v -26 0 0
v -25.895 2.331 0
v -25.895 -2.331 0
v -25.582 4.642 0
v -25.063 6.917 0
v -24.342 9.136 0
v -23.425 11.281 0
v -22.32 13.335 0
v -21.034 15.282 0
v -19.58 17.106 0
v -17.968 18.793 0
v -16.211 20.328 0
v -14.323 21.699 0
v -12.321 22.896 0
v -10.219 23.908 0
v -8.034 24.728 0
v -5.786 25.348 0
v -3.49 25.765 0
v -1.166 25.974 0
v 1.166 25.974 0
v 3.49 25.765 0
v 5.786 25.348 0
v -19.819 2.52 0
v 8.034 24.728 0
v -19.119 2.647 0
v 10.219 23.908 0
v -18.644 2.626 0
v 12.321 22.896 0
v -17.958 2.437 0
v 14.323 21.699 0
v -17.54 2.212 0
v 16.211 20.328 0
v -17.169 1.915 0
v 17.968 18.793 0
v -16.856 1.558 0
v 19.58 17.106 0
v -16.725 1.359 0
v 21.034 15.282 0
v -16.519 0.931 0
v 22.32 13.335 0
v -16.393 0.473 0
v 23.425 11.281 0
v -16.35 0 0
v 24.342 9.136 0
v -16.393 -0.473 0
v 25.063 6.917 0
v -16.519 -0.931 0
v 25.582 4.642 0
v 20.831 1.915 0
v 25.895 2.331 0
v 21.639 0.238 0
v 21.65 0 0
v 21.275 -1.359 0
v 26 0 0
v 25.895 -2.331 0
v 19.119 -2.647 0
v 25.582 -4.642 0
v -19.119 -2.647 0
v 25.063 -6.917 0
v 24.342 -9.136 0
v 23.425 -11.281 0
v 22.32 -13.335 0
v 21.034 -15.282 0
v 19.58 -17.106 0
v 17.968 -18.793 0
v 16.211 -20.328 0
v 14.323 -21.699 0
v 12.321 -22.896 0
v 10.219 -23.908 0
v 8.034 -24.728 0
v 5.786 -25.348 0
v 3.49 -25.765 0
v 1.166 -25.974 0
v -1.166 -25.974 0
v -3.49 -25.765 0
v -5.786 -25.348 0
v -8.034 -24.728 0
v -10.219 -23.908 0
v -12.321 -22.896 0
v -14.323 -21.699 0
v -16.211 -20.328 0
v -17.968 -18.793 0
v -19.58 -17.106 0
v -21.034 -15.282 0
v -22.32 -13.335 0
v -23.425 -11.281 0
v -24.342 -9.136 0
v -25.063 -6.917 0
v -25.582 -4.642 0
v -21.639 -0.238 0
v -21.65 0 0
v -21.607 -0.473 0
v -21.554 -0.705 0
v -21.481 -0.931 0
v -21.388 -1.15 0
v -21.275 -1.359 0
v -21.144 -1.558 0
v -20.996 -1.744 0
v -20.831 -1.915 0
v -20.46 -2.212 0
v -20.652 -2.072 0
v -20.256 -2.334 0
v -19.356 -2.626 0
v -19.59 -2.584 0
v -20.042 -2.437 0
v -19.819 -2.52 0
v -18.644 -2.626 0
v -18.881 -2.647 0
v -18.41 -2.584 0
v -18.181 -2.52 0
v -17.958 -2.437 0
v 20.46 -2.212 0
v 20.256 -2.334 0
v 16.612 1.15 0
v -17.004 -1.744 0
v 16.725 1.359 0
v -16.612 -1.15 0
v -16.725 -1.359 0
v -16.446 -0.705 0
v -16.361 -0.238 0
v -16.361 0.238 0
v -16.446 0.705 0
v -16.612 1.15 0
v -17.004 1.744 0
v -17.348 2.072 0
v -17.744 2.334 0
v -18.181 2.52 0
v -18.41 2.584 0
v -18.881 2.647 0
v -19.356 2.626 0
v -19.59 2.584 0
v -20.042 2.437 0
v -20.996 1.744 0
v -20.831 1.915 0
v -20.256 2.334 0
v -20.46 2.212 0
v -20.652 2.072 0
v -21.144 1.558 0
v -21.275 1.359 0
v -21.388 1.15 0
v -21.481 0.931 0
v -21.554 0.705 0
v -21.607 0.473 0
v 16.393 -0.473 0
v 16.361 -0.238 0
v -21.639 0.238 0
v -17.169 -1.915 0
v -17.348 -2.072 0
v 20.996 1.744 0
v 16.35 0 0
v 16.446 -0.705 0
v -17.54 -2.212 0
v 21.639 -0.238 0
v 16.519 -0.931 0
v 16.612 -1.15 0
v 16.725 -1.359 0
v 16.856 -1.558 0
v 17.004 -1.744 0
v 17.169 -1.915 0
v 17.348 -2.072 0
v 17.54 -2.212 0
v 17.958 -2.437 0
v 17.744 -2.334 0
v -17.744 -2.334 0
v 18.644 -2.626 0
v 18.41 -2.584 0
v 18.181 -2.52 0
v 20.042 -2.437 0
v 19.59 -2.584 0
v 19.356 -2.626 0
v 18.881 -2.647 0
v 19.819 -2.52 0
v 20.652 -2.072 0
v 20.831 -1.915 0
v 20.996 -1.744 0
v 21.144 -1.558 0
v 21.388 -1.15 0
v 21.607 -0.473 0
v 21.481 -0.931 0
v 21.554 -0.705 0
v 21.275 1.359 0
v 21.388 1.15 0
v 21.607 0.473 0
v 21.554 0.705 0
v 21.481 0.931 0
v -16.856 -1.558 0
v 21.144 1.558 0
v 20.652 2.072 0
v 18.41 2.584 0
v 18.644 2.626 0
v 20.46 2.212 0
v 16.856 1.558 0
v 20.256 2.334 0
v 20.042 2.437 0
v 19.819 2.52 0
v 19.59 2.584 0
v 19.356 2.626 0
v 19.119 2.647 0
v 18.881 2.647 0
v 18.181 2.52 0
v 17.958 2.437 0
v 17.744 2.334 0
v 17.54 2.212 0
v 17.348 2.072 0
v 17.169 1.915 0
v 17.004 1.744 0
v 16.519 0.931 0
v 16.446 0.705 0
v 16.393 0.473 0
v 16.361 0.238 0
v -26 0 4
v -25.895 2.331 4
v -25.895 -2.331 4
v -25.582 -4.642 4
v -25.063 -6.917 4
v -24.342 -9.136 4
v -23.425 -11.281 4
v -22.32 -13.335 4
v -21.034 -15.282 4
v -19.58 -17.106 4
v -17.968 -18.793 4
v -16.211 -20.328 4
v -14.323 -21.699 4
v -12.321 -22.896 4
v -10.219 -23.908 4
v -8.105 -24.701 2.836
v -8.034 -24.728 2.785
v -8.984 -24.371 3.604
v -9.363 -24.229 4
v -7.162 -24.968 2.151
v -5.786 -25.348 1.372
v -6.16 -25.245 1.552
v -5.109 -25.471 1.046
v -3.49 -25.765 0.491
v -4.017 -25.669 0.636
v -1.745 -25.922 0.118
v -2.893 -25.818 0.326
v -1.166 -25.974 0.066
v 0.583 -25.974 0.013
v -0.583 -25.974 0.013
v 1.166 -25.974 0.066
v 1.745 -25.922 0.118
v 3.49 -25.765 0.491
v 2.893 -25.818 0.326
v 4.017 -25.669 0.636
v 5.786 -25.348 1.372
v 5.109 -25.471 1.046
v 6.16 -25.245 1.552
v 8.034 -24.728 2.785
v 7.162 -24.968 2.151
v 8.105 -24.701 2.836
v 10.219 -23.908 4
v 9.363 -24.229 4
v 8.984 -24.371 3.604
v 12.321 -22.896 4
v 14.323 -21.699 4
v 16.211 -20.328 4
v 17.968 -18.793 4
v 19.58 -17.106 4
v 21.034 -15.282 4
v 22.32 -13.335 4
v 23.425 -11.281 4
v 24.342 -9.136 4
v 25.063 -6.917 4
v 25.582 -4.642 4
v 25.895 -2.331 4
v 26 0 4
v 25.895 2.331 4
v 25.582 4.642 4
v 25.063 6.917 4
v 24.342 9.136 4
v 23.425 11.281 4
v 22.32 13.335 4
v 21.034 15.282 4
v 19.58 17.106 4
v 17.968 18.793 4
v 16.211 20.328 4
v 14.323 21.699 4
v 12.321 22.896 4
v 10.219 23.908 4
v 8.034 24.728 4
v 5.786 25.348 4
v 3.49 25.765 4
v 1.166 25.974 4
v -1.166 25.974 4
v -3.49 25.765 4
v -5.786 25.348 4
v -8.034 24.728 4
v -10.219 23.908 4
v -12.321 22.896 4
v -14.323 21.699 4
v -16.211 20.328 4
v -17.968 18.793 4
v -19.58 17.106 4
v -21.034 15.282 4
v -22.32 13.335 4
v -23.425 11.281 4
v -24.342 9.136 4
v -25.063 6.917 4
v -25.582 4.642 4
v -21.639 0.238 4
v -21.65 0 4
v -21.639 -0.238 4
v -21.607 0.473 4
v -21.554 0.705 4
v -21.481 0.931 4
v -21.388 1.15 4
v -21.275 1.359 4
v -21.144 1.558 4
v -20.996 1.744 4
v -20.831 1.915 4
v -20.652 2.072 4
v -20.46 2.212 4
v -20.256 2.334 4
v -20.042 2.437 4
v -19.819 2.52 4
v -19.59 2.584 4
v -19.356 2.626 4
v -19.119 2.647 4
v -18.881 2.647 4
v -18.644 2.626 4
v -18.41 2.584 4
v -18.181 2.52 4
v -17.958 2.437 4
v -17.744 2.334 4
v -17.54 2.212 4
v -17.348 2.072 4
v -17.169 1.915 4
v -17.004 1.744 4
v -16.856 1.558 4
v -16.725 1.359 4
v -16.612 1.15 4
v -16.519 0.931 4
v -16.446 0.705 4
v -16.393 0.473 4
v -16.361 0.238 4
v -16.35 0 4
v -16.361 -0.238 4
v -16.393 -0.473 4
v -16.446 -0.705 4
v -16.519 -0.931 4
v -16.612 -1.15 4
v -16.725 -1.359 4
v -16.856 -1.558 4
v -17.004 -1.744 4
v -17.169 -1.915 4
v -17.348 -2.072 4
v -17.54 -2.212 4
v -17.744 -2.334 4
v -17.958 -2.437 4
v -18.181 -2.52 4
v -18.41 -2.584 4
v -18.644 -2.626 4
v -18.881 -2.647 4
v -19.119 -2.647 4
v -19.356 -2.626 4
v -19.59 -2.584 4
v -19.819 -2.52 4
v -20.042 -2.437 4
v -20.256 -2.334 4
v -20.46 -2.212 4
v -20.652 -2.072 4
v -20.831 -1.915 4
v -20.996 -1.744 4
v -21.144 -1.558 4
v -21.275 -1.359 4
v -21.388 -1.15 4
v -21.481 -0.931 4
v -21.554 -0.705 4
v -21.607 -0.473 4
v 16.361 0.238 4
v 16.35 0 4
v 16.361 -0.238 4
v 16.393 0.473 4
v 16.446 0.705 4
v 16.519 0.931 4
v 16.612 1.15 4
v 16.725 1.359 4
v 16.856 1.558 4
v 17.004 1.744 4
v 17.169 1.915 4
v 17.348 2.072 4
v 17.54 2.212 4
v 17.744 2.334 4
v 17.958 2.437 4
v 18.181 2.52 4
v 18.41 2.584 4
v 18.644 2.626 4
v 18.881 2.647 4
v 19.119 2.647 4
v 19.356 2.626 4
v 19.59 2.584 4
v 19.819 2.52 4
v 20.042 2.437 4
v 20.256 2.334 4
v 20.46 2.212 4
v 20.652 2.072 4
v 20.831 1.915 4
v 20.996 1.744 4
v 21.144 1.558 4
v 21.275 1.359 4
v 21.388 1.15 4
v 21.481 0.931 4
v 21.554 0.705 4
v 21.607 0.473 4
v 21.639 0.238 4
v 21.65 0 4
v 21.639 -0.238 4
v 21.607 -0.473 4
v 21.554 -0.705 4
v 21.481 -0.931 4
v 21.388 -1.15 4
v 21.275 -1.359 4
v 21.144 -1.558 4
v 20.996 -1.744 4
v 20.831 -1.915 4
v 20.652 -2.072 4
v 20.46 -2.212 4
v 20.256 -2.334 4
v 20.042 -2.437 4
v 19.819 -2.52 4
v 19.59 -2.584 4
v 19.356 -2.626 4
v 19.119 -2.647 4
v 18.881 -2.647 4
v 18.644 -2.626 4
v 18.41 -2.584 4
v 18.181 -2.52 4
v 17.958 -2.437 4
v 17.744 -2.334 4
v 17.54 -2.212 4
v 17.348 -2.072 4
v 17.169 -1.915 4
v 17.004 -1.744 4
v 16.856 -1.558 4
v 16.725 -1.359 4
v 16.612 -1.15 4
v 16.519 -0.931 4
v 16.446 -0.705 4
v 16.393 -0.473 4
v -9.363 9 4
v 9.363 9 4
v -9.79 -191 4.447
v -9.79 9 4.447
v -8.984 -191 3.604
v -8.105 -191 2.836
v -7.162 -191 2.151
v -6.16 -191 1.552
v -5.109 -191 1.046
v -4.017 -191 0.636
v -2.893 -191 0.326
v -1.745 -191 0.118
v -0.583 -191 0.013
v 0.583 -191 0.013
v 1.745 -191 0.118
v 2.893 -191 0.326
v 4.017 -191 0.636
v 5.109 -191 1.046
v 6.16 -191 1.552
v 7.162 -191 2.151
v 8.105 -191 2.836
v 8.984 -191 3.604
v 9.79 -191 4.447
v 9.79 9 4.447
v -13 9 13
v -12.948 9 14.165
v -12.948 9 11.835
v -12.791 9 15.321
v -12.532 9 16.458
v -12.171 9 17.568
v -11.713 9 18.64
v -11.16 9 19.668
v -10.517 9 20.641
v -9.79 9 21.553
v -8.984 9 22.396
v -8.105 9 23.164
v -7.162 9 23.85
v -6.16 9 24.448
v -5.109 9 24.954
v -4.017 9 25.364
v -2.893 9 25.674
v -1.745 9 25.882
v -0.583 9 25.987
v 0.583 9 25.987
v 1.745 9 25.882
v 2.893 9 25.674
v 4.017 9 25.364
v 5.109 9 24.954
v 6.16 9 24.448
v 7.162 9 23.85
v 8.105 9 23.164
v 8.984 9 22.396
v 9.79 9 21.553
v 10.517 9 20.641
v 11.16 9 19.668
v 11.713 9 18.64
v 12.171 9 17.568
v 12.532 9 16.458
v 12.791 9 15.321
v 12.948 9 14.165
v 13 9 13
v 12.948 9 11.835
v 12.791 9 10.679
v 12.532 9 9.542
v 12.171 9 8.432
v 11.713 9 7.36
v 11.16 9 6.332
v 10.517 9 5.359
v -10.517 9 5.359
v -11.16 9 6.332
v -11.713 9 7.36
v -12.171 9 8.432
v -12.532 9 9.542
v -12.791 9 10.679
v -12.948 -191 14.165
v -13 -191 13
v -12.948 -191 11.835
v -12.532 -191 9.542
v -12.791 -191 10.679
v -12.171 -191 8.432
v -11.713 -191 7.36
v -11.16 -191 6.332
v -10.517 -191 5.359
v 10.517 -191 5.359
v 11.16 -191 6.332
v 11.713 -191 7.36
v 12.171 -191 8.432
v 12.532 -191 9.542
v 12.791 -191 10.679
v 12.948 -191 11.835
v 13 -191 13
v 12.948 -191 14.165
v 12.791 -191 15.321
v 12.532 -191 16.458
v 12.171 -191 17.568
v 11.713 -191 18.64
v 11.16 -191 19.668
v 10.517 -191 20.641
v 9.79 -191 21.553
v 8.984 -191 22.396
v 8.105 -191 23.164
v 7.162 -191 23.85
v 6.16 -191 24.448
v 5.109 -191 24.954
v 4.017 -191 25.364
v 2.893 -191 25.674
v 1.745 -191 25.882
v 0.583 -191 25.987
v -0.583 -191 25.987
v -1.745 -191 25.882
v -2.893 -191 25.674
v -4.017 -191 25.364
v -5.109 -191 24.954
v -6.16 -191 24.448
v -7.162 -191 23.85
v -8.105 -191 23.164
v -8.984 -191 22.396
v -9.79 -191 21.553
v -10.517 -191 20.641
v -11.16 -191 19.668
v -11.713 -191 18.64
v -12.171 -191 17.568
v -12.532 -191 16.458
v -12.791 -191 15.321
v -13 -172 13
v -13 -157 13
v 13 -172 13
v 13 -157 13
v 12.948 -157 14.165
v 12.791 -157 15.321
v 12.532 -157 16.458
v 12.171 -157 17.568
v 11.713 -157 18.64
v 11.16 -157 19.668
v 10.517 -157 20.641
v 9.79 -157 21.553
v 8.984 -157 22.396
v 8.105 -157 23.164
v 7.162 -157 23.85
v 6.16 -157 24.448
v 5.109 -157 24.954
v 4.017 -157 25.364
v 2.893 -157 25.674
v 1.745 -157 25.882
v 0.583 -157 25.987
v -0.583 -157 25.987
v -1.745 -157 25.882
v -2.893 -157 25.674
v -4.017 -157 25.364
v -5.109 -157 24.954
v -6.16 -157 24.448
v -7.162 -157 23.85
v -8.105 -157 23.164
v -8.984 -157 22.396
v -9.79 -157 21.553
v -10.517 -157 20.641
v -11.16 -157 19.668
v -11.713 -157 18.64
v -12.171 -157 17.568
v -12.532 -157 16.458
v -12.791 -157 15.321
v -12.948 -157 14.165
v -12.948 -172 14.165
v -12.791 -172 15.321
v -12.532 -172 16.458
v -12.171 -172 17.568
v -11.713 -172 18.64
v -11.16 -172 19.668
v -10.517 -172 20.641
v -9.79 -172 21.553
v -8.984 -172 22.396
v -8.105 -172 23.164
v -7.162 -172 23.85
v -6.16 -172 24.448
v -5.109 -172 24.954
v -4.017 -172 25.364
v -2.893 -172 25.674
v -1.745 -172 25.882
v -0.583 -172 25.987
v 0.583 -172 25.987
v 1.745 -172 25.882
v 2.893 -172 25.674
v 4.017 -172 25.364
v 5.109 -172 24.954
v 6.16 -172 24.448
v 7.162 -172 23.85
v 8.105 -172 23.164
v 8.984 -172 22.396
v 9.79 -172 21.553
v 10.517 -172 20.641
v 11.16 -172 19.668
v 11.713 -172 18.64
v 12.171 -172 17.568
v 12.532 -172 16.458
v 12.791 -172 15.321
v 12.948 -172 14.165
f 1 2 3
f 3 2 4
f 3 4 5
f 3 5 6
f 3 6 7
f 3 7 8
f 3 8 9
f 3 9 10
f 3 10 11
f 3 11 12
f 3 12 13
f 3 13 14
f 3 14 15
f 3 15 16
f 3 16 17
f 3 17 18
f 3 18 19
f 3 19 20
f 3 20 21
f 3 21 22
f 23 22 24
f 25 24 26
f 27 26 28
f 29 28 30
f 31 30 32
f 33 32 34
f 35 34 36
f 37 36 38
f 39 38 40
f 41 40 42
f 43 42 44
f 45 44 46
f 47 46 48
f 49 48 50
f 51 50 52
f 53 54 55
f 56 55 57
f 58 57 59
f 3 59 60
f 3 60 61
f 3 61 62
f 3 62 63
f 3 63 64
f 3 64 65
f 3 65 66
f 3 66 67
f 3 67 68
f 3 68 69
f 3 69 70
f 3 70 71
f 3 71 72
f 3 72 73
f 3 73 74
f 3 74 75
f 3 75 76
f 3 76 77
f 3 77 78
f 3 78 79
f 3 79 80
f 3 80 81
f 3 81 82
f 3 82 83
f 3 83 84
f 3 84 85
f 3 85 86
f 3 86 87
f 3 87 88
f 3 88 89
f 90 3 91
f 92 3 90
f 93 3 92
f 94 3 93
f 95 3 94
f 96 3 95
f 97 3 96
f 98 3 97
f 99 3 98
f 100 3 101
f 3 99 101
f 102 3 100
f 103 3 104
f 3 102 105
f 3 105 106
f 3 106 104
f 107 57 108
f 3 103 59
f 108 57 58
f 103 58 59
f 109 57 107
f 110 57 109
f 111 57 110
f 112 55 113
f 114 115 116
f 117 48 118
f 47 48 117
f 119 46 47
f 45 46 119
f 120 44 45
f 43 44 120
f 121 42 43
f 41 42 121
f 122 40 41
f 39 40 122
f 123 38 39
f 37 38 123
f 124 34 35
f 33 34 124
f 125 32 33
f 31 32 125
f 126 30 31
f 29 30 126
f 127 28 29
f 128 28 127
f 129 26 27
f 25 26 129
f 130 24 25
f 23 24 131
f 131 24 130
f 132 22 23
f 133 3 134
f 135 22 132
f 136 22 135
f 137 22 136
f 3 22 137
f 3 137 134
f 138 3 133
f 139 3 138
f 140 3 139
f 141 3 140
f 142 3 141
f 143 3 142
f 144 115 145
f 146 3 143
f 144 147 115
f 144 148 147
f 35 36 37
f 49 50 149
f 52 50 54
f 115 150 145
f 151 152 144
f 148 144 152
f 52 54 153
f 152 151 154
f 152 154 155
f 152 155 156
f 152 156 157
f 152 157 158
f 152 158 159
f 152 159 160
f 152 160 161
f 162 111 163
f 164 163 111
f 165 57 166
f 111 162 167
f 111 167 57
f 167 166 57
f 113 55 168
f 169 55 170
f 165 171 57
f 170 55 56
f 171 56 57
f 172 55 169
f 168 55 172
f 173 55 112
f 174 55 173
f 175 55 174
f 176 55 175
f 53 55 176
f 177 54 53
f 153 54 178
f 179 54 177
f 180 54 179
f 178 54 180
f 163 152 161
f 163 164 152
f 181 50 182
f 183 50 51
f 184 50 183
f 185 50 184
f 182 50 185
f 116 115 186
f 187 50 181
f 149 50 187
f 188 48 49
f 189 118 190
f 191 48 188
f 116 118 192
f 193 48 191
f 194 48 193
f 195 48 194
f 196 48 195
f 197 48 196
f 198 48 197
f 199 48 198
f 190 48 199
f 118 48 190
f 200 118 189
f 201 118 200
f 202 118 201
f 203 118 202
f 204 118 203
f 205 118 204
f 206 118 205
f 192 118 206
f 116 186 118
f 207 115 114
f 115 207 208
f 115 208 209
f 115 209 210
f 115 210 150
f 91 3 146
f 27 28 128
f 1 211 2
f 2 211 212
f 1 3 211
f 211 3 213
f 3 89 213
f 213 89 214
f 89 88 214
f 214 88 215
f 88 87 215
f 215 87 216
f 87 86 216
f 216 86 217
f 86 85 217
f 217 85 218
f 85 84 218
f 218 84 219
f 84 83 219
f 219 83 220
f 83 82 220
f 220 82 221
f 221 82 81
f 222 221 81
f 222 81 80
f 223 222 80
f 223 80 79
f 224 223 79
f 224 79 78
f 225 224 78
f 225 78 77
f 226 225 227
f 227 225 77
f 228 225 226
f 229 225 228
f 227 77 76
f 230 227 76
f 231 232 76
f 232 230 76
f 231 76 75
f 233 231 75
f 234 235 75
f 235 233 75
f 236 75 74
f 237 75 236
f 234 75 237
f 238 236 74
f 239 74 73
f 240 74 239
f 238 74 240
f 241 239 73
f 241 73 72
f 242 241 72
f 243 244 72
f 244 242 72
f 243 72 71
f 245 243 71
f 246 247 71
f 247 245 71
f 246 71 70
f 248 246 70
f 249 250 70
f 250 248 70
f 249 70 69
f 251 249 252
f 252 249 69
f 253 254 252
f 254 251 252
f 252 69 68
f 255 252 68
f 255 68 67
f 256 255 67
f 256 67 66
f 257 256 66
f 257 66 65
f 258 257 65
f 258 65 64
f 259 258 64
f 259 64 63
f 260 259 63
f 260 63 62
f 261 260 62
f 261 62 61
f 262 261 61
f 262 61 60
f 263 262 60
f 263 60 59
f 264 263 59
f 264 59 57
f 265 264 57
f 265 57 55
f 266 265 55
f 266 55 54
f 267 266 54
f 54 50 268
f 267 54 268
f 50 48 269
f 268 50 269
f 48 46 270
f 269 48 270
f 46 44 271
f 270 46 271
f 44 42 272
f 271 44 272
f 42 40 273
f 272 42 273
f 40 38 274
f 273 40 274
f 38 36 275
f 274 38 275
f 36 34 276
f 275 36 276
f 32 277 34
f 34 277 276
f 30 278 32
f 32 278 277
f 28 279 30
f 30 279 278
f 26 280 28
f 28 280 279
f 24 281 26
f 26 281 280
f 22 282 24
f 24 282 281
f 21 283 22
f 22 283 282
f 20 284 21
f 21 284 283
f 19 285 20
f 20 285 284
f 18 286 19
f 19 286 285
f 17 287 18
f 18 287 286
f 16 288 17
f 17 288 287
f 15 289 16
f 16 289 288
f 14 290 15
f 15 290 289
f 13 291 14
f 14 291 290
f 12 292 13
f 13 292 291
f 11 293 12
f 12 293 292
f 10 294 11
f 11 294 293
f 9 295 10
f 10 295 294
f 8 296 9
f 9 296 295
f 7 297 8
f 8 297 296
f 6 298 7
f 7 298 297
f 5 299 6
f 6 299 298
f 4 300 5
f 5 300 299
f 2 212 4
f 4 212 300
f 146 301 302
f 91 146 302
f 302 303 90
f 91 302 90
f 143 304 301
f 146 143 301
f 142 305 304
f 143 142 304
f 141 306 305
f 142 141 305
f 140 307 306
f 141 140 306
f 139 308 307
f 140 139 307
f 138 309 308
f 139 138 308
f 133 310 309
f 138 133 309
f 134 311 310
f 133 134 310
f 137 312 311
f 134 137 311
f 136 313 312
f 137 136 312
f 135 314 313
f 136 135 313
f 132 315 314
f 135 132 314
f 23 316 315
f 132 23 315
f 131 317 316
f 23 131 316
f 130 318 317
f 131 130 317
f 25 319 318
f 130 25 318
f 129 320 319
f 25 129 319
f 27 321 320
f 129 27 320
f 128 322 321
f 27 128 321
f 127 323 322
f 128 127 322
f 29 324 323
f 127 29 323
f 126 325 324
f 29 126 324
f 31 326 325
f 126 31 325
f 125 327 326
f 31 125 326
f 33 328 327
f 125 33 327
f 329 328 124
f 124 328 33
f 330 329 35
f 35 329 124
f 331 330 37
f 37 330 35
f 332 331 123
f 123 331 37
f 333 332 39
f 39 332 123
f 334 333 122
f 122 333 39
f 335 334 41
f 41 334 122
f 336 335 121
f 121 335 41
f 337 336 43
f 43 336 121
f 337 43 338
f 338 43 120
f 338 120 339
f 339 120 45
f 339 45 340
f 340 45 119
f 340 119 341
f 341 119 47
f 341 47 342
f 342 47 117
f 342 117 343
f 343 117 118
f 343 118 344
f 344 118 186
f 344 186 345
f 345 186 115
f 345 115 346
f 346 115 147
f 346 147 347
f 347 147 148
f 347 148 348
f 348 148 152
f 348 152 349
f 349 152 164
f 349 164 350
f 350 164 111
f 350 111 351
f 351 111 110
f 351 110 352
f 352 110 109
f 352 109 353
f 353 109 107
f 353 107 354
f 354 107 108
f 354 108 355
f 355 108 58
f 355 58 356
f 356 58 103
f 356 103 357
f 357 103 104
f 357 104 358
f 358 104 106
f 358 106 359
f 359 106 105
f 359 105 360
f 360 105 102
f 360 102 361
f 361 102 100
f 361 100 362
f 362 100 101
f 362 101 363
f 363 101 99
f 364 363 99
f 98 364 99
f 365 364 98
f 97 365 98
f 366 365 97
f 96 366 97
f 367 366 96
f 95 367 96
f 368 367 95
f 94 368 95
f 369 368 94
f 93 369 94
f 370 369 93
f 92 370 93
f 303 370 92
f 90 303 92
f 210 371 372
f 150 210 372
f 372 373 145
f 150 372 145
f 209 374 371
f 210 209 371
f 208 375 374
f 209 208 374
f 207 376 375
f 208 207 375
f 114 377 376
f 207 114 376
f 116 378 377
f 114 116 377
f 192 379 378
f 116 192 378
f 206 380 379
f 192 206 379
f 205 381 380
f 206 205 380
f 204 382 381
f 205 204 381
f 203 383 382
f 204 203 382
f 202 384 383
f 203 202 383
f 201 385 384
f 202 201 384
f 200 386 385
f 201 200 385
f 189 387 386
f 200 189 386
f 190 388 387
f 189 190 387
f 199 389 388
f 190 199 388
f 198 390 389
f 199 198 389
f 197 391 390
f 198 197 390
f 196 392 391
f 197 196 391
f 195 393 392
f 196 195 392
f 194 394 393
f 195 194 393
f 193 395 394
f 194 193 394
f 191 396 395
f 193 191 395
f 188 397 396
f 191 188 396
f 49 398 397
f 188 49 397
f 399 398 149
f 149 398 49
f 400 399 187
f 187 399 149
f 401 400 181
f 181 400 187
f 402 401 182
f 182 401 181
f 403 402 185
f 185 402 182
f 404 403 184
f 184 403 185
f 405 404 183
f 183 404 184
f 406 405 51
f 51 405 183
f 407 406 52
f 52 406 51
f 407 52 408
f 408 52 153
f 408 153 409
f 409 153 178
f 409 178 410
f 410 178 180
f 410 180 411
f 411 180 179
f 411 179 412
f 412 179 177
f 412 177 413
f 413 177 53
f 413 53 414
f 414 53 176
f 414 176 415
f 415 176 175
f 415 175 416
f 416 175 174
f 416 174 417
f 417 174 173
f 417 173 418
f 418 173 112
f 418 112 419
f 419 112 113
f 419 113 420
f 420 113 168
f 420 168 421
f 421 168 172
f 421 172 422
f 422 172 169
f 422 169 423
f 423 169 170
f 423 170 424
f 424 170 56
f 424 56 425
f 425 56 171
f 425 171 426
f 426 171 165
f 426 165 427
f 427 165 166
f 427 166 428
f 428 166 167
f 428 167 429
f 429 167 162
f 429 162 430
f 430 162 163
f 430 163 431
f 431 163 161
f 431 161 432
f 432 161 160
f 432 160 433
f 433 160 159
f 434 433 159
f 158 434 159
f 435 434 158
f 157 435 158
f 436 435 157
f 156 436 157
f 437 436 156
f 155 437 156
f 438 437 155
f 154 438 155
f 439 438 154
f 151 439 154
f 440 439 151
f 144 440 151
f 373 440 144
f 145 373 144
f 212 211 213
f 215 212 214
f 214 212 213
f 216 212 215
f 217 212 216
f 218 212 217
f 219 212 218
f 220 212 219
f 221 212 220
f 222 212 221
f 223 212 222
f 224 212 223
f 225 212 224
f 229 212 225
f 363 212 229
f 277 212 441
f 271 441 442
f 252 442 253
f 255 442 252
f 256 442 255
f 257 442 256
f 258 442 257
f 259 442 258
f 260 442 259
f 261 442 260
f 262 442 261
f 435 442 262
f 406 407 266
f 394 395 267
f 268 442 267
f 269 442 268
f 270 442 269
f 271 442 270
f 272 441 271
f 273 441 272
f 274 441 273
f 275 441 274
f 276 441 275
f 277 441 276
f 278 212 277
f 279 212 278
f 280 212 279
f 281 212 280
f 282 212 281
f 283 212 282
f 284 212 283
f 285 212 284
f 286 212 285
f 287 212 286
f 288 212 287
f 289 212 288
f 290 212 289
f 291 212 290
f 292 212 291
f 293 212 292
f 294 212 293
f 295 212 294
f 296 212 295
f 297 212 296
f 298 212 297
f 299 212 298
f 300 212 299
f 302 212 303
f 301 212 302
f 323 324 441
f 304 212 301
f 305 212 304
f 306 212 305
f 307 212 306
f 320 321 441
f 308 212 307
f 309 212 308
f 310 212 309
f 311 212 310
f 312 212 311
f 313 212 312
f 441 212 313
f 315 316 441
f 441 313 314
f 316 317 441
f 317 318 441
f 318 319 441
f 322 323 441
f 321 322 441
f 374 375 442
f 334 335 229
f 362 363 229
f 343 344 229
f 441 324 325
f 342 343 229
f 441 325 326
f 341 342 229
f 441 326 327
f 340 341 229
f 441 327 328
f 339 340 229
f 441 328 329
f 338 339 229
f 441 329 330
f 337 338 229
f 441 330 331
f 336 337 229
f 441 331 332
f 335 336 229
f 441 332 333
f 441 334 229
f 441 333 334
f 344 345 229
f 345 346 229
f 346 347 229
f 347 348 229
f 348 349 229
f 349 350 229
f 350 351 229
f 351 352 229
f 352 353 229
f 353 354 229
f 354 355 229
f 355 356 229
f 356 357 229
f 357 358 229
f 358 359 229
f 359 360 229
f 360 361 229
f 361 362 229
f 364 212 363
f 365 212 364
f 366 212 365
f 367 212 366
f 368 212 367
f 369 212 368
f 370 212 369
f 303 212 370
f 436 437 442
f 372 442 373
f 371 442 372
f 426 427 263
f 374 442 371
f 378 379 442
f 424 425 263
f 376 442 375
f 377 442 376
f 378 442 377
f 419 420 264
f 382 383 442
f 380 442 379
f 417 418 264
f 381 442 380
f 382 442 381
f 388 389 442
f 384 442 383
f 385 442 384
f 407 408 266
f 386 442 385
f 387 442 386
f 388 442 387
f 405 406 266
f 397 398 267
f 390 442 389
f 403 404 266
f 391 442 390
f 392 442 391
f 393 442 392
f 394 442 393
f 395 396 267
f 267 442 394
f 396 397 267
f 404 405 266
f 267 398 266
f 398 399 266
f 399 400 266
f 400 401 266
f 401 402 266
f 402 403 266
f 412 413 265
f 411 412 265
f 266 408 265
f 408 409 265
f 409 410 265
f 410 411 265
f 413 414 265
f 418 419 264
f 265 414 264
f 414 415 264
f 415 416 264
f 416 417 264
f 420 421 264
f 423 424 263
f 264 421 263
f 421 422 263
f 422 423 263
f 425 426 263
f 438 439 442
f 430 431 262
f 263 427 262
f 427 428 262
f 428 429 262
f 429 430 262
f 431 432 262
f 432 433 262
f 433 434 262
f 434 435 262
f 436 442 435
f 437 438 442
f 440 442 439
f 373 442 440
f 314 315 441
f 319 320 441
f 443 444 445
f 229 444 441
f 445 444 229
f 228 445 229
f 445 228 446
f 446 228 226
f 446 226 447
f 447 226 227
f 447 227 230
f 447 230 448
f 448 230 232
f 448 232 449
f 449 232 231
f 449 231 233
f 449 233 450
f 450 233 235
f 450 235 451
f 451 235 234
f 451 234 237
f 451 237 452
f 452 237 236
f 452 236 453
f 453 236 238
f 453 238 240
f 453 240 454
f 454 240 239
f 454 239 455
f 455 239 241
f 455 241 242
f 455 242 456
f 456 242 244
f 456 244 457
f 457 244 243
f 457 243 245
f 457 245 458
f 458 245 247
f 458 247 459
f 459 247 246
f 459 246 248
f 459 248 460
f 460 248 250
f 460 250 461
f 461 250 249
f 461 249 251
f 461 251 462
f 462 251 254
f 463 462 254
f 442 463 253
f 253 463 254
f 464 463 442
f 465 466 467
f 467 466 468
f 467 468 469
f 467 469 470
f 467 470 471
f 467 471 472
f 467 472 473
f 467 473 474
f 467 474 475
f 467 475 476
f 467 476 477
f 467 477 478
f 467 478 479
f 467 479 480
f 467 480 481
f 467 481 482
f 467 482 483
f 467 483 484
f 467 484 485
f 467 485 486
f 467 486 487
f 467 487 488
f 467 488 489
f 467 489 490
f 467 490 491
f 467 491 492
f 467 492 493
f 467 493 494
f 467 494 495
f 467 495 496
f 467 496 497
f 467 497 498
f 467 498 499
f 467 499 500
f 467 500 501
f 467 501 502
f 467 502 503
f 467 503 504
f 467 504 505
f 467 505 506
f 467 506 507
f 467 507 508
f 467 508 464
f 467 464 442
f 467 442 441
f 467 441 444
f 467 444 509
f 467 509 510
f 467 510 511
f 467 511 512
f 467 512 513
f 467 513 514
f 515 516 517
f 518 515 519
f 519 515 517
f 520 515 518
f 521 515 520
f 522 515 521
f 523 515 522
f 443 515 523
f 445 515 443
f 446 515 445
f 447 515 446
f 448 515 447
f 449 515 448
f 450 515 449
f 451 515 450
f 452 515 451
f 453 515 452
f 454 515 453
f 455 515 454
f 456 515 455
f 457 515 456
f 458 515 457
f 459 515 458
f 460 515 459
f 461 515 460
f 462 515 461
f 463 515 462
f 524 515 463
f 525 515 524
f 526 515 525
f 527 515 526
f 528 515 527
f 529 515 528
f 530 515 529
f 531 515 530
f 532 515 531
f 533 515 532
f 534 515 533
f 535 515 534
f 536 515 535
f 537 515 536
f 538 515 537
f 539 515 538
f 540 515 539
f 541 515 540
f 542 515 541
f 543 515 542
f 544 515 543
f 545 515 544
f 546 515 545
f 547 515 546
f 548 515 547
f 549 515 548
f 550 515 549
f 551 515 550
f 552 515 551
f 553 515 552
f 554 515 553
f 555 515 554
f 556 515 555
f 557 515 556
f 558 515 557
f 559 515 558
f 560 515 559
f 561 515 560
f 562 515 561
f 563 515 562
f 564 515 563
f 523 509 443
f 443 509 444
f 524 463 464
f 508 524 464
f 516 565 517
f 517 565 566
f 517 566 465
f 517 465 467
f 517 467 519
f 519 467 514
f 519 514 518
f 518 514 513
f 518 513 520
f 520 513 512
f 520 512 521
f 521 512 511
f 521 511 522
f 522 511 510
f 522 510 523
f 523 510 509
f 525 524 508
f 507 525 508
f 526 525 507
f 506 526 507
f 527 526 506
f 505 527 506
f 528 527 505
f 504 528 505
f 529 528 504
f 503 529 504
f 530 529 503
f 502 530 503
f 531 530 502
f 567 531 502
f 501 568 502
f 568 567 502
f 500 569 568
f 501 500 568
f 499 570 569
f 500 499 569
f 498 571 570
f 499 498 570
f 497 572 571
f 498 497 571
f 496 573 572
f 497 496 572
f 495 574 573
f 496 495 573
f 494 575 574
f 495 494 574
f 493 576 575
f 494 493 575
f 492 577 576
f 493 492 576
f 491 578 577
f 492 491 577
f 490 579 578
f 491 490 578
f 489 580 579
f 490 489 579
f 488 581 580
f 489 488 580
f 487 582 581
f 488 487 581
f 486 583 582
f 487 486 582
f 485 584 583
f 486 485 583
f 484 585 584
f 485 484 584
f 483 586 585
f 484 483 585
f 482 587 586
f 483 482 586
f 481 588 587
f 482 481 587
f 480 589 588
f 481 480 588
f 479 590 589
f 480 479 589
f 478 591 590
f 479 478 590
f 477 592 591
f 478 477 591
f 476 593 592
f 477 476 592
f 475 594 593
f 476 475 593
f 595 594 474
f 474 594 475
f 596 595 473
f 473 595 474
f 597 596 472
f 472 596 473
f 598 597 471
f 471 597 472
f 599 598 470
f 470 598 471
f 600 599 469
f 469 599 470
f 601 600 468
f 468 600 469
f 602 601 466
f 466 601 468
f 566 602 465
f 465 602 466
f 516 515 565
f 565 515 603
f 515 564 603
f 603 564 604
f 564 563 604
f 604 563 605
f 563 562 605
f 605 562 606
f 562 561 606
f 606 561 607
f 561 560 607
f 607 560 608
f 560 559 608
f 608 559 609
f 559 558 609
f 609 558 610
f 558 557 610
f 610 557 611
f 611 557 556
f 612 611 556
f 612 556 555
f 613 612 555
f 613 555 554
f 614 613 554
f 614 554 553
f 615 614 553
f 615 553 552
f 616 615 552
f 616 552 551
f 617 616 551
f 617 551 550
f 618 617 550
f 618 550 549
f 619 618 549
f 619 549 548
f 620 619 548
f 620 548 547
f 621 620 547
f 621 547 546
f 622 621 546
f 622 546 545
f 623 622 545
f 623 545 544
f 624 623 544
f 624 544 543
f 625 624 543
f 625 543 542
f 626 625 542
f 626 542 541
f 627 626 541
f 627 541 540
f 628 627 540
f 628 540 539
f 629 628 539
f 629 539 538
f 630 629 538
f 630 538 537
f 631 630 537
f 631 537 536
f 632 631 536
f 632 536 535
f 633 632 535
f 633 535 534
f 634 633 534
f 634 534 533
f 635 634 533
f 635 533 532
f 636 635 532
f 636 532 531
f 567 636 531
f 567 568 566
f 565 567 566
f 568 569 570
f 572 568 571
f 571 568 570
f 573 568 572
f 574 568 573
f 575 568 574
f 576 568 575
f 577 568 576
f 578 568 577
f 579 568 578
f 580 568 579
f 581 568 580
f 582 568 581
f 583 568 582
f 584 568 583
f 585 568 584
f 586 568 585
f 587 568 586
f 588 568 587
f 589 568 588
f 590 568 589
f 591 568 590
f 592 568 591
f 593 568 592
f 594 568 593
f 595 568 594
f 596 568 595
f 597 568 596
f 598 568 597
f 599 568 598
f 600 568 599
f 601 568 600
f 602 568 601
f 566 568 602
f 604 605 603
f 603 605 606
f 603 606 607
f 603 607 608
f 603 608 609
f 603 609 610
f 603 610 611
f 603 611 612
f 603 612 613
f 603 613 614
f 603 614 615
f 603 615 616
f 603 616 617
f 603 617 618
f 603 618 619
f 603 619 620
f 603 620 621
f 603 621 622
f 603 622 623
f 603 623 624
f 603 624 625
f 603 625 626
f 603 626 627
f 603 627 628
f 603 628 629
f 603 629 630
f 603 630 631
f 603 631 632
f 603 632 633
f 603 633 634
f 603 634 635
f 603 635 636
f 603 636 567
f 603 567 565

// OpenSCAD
$fn=70;

screw_r = 5.3/2;
screw_d = 38/2; // Distance from center
mount_t = 4;
mount_r = 26;
hanger_r = mount_r/2;
hanger_h = 200;

hole_t = 15;

translate([0,hanger_r,hanger_r])
rotate(a=[90,0,0])
difference(){
	translate([0,0,mount_t])
	cylinder(r=hanger_r,h=hanger_h);
	translate([-mount_r,0,hanger_h-2*hole_t])
	cube([2*mount_r,mount_r,hole_t]);
}


difference(){
	cylinder(r=mount_r,h=mount_t);
	for(x=[-screw_d,screw_d]){
		translate([x,0,0])
		cylinder(r=screw_r,h=mount_t);
	}

}
 
